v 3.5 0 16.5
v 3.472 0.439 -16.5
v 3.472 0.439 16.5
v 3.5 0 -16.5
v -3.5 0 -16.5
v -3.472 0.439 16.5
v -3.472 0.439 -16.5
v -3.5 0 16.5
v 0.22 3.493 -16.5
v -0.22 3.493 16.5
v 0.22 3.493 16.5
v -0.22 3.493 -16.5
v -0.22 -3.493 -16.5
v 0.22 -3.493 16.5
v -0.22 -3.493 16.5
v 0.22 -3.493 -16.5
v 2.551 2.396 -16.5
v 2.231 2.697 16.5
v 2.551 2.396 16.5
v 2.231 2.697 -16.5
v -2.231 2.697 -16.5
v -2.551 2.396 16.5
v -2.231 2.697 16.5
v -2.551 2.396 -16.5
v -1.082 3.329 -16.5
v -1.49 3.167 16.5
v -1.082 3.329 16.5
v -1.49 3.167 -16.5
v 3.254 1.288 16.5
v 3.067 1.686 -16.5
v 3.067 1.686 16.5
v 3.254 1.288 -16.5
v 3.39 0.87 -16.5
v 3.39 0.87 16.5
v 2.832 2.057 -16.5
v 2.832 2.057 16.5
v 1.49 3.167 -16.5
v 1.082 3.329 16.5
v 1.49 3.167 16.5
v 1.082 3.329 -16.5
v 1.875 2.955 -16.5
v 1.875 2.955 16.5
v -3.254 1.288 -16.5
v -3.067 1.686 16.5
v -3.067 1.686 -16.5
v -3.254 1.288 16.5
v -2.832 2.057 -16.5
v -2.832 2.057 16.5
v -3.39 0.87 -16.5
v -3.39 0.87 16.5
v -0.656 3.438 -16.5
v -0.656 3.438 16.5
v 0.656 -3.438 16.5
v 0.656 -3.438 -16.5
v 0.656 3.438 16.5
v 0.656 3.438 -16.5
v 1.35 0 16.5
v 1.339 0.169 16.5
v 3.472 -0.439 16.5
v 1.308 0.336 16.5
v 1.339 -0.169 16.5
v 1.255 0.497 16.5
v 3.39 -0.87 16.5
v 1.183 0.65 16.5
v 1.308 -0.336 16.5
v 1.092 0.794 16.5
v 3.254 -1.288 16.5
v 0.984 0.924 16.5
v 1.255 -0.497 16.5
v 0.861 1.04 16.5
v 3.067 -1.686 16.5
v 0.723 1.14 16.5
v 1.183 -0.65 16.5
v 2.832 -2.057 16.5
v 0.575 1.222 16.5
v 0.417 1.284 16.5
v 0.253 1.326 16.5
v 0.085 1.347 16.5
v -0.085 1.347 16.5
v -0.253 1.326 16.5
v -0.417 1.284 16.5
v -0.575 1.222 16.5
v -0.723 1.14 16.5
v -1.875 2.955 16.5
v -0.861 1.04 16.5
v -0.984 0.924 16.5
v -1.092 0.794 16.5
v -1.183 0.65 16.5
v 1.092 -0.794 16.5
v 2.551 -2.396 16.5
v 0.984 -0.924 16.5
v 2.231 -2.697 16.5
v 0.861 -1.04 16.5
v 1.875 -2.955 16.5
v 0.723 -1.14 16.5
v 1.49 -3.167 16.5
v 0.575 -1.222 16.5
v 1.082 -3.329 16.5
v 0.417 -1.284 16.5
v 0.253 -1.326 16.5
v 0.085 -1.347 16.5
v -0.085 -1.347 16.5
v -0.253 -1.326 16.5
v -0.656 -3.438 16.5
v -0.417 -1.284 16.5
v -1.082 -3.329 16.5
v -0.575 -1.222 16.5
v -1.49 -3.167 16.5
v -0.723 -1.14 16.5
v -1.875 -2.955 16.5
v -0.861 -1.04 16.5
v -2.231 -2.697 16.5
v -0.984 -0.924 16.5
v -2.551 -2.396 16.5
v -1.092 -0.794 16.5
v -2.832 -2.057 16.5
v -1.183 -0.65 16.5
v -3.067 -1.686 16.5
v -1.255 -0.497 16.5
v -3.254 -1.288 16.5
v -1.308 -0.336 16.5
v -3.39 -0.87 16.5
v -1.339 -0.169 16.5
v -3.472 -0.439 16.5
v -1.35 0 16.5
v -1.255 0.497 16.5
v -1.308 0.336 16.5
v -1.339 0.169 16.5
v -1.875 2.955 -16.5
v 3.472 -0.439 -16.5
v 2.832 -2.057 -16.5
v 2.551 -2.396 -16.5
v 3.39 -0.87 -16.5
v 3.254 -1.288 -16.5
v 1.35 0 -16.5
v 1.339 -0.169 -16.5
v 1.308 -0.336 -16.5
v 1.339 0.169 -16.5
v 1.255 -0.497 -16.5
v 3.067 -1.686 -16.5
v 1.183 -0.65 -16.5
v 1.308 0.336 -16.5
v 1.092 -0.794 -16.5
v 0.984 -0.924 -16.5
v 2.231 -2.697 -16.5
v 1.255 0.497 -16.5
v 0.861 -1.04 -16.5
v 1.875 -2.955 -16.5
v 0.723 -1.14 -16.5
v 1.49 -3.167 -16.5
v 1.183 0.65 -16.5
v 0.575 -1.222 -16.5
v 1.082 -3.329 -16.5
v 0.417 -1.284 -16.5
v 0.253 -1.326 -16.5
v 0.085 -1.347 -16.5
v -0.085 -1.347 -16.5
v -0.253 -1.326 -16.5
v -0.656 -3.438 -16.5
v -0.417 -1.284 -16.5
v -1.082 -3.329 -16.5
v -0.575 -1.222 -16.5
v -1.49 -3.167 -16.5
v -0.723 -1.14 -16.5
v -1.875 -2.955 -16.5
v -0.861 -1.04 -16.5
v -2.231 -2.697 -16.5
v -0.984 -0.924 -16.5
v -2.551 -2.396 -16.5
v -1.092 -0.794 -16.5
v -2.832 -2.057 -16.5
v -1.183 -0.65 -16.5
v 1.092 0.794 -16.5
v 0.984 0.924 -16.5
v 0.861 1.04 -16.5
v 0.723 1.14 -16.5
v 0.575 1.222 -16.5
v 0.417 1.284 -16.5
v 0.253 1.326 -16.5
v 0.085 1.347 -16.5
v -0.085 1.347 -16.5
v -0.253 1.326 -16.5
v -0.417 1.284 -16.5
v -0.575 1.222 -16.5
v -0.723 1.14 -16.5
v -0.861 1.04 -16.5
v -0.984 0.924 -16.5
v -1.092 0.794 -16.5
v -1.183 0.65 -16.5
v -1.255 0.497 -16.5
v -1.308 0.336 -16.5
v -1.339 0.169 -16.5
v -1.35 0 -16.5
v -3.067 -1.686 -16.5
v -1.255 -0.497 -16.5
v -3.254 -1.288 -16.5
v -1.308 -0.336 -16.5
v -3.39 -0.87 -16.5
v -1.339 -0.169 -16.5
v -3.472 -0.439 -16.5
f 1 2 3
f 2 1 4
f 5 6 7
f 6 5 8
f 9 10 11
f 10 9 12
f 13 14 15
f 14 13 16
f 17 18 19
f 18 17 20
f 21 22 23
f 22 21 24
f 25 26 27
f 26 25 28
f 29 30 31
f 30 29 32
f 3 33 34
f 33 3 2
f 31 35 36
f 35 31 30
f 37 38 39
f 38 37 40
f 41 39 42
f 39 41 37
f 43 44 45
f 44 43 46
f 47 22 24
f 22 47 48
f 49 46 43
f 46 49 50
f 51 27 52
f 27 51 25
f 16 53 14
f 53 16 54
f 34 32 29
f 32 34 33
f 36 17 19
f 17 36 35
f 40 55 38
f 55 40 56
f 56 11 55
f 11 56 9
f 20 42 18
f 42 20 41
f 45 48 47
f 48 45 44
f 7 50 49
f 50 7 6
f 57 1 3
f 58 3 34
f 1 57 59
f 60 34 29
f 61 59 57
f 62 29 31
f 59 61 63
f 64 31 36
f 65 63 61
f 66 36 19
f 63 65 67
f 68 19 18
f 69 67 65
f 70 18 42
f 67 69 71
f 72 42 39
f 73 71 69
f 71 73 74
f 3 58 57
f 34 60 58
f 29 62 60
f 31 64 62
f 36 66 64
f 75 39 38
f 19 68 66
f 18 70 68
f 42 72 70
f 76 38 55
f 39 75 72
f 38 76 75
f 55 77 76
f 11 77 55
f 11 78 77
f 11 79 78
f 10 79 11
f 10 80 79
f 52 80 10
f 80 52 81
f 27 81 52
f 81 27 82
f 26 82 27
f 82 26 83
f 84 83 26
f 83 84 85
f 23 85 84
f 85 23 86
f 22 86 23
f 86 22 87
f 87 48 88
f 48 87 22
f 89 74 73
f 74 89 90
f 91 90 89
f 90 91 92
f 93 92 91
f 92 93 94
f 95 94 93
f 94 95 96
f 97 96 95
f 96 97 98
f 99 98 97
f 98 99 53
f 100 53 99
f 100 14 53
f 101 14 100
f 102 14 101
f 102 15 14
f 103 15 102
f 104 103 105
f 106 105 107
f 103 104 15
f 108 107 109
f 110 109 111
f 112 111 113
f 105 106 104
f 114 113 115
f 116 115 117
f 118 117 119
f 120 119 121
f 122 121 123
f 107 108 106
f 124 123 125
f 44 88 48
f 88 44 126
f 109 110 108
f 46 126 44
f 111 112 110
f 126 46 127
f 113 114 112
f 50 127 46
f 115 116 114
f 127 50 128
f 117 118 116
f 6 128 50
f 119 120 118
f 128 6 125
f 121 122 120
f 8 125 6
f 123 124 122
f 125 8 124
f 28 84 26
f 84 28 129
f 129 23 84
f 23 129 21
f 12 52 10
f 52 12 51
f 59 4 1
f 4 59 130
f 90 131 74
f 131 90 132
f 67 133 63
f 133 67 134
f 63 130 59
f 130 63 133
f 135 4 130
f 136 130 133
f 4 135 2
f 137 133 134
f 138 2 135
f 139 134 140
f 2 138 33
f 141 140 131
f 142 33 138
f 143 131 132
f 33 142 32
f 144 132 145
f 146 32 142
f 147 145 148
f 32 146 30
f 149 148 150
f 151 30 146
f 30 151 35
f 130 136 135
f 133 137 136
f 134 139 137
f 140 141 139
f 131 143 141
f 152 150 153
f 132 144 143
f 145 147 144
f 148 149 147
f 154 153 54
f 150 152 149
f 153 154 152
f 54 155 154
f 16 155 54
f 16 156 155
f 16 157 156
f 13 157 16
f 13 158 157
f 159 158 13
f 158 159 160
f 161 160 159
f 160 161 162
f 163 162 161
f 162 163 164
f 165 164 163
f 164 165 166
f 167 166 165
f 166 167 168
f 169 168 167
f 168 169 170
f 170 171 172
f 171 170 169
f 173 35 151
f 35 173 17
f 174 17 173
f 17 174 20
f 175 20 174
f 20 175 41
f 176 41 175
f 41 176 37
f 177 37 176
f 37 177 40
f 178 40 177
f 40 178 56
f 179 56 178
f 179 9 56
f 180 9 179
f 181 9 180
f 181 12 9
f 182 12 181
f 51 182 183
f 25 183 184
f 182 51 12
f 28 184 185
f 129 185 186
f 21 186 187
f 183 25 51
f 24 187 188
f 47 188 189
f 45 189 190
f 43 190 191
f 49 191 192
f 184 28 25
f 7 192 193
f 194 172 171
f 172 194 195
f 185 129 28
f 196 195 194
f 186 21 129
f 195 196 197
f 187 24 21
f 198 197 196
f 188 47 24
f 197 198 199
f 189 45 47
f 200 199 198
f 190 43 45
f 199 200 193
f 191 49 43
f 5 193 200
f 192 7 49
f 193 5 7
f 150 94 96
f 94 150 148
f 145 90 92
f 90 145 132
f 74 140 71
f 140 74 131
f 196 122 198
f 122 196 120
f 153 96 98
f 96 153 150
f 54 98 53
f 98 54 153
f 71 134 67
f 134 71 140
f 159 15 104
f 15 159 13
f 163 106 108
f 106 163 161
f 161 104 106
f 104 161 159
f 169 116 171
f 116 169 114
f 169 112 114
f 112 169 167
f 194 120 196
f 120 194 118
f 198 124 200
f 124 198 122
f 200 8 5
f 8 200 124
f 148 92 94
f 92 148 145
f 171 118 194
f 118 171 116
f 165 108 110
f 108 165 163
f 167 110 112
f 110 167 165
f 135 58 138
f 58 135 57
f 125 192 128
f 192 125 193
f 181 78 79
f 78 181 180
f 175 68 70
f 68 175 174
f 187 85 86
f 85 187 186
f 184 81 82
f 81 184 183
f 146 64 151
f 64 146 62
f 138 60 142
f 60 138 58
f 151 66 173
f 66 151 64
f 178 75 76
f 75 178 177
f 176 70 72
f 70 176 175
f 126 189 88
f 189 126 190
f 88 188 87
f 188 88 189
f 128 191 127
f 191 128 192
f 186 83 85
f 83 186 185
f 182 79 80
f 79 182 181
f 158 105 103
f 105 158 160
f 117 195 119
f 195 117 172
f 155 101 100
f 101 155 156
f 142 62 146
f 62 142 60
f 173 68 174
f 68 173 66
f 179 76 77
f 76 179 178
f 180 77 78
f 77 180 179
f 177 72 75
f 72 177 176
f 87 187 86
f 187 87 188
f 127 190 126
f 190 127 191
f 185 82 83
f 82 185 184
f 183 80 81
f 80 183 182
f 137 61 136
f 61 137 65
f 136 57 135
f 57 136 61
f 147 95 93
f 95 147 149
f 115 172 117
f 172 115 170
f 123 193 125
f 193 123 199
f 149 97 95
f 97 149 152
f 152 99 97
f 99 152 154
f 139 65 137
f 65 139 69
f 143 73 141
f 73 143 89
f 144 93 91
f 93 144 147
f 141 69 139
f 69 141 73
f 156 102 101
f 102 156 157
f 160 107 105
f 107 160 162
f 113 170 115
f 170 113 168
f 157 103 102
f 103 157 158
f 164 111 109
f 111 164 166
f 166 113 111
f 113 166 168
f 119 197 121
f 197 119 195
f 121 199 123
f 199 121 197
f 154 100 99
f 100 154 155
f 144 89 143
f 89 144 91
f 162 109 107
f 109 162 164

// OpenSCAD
$fn = 50;


difference() {
	union() {
		translate(v = [0, 0, -16.5000000000]) {
			cylinder(h = 33, r = 3.5000000000);
		}
	}
	union() {
		translate(v = [0, 0, -100.0000000000]) {
			cylinder(h = 200, r = 1.3500000000);
		}
	}
}
